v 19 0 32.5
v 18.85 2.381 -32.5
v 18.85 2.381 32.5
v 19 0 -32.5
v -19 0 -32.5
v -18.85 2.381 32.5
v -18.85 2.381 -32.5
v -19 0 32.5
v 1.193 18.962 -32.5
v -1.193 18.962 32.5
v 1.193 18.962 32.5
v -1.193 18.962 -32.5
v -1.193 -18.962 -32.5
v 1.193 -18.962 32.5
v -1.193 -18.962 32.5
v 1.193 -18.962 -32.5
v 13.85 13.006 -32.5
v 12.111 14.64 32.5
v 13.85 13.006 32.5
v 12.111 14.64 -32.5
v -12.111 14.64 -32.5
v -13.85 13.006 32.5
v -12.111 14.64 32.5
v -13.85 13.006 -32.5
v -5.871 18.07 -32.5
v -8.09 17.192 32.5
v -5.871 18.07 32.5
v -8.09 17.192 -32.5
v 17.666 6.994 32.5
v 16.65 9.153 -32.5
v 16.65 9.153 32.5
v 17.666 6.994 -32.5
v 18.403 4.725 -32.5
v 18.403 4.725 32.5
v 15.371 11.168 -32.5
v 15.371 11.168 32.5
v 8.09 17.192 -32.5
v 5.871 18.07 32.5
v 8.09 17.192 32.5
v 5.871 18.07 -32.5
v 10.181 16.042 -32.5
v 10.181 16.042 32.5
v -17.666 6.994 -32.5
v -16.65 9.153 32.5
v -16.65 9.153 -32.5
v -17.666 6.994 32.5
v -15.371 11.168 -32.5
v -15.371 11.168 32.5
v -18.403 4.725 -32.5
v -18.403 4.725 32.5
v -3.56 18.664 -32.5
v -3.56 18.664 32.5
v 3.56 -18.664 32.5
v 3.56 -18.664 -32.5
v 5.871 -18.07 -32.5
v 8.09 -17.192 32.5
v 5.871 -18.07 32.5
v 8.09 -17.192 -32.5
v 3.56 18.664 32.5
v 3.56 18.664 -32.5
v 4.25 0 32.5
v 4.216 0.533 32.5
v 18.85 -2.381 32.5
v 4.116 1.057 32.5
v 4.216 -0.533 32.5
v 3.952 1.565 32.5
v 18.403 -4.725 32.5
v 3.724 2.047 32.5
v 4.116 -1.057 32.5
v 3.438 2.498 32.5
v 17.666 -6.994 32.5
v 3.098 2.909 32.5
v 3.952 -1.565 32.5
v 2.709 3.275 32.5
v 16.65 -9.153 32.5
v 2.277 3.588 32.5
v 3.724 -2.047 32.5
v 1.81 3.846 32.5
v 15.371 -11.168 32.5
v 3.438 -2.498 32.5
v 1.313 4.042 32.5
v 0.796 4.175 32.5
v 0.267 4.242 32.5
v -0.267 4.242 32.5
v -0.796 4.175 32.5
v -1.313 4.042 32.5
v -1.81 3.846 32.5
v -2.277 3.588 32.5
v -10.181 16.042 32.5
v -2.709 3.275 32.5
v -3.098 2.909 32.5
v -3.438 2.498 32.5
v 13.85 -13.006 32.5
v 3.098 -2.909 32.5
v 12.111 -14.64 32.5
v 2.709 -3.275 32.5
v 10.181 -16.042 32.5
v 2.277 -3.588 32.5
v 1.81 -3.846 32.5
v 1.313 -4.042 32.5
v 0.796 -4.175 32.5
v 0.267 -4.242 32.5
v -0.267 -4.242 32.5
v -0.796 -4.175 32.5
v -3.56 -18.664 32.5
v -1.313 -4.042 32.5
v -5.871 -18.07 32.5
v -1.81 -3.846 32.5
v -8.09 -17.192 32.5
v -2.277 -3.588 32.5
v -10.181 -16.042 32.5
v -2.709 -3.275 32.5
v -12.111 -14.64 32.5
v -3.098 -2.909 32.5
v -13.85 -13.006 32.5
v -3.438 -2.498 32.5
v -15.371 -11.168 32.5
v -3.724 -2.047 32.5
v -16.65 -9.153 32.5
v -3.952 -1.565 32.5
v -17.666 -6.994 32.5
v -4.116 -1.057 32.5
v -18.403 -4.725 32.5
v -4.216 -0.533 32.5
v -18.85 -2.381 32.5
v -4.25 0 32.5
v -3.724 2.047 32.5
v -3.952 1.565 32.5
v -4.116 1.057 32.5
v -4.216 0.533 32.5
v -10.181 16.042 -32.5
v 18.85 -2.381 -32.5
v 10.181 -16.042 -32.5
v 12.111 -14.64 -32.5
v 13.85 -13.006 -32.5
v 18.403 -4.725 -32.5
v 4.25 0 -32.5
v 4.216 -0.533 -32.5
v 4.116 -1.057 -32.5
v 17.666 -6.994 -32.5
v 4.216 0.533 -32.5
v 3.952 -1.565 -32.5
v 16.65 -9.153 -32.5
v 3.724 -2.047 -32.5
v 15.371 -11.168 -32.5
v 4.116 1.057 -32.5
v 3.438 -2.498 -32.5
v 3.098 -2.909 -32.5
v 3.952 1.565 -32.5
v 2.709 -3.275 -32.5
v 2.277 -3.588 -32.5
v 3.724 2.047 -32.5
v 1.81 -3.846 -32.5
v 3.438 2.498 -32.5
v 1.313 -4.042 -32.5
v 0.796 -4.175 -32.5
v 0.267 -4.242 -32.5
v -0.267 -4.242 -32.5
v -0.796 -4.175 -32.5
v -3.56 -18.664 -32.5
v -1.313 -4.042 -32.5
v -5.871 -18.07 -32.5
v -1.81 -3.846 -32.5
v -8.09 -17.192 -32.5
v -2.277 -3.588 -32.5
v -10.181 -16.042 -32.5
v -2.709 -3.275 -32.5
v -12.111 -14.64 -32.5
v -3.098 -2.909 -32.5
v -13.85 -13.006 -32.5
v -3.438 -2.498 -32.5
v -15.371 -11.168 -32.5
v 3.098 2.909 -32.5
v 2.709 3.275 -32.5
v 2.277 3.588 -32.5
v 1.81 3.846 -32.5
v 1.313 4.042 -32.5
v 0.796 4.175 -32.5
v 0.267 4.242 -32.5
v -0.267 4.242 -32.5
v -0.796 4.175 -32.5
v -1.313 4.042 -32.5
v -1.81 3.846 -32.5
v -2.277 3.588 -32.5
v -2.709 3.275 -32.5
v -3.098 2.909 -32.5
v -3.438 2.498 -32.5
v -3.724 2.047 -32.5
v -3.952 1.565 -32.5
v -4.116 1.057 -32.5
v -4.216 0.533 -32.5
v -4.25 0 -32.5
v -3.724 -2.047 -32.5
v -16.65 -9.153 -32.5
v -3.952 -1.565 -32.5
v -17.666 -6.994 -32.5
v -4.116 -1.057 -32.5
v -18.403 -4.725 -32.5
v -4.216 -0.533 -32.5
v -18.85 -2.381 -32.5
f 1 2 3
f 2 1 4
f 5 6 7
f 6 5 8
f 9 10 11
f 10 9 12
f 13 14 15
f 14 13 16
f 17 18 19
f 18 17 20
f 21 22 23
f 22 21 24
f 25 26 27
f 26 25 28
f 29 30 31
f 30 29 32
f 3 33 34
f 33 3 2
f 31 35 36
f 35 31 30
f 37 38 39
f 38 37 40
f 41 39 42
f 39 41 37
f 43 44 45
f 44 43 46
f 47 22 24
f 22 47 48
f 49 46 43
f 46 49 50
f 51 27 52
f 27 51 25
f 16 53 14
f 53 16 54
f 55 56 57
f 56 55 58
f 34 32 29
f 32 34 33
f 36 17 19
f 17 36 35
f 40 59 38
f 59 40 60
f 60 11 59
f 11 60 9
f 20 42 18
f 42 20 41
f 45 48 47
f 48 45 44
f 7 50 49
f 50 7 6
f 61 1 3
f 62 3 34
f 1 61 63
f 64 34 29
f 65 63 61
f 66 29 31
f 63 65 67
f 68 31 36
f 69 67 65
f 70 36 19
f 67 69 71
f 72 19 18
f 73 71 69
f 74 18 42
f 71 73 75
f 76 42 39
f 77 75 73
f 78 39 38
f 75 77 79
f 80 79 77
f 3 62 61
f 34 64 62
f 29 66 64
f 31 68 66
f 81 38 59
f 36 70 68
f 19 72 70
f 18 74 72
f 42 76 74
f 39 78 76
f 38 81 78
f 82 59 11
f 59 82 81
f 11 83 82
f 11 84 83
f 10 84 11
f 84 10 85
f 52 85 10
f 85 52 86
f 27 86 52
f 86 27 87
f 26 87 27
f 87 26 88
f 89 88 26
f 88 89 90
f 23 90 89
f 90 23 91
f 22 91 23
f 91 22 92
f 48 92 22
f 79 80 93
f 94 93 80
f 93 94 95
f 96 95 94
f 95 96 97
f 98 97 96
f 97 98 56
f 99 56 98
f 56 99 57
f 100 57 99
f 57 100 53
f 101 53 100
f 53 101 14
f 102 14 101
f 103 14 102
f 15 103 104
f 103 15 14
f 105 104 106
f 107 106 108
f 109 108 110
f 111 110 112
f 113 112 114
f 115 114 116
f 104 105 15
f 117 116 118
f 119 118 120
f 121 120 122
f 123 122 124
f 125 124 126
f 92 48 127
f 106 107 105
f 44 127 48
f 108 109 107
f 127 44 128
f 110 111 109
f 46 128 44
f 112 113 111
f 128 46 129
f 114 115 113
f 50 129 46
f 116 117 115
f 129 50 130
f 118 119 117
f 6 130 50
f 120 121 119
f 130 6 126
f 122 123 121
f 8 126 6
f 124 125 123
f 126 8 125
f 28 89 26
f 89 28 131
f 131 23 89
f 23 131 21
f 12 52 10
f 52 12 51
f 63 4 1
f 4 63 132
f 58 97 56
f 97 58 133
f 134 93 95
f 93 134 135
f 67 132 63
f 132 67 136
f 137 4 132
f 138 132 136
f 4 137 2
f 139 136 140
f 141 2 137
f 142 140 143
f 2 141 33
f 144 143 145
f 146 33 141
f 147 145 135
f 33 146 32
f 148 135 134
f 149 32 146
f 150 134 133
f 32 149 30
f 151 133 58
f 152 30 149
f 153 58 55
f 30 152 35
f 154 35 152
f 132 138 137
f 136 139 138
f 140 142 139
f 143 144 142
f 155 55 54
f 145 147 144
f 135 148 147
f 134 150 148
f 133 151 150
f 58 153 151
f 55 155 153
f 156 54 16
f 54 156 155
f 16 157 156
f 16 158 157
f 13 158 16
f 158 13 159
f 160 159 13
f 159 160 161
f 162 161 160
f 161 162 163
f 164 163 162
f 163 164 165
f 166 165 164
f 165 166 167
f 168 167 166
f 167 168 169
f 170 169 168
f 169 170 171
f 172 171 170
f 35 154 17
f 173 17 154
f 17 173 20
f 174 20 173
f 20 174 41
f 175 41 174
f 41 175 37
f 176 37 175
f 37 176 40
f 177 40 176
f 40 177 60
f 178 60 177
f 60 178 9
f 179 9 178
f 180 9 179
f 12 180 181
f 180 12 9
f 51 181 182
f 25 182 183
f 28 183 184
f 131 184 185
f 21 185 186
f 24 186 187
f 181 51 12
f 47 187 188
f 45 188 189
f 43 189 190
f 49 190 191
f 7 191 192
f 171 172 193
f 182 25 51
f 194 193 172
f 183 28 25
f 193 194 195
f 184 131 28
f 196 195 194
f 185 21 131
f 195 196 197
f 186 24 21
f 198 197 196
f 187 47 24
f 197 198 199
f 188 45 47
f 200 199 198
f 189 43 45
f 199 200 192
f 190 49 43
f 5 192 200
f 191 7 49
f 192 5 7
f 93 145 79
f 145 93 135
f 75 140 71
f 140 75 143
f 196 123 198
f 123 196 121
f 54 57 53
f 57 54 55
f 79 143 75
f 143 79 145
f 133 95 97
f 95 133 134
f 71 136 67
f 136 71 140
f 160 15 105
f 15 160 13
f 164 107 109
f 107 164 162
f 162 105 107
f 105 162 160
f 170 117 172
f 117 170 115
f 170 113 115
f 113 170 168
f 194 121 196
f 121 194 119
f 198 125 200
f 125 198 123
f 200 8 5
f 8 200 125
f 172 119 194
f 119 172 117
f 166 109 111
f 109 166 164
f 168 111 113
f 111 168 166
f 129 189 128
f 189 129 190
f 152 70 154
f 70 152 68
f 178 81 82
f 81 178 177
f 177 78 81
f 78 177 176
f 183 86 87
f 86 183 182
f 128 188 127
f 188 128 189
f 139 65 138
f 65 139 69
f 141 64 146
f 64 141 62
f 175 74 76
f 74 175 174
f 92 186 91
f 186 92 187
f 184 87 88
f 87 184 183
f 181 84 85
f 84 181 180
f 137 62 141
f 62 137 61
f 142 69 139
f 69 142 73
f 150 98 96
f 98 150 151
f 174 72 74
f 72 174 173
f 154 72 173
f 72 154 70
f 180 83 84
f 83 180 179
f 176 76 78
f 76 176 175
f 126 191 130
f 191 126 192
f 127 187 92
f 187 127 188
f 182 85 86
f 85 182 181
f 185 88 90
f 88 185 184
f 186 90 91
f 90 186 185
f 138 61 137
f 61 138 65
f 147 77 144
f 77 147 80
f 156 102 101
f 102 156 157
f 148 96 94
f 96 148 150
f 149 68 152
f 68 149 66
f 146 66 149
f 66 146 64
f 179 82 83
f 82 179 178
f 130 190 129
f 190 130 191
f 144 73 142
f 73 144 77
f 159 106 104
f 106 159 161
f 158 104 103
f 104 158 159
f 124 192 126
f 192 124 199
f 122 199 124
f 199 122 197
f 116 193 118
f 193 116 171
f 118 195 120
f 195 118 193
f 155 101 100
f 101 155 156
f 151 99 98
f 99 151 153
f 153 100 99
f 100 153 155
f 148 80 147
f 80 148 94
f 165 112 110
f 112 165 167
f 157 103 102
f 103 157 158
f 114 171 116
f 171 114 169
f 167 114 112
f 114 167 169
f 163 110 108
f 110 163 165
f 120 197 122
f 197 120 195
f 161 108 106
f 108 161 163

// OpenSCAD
$fn = 50;


difference() {
	union() {
		translate(v = [0, 0, -32.5000000000]) {
			cylinder(h = 65, r = 19.0000000000);
		}
	}
	union() {
		translate(v = [0, 0, -100.0000000000]) {
			cylinder(h = 200, r = 4.2500000000);
		}
	}
}
